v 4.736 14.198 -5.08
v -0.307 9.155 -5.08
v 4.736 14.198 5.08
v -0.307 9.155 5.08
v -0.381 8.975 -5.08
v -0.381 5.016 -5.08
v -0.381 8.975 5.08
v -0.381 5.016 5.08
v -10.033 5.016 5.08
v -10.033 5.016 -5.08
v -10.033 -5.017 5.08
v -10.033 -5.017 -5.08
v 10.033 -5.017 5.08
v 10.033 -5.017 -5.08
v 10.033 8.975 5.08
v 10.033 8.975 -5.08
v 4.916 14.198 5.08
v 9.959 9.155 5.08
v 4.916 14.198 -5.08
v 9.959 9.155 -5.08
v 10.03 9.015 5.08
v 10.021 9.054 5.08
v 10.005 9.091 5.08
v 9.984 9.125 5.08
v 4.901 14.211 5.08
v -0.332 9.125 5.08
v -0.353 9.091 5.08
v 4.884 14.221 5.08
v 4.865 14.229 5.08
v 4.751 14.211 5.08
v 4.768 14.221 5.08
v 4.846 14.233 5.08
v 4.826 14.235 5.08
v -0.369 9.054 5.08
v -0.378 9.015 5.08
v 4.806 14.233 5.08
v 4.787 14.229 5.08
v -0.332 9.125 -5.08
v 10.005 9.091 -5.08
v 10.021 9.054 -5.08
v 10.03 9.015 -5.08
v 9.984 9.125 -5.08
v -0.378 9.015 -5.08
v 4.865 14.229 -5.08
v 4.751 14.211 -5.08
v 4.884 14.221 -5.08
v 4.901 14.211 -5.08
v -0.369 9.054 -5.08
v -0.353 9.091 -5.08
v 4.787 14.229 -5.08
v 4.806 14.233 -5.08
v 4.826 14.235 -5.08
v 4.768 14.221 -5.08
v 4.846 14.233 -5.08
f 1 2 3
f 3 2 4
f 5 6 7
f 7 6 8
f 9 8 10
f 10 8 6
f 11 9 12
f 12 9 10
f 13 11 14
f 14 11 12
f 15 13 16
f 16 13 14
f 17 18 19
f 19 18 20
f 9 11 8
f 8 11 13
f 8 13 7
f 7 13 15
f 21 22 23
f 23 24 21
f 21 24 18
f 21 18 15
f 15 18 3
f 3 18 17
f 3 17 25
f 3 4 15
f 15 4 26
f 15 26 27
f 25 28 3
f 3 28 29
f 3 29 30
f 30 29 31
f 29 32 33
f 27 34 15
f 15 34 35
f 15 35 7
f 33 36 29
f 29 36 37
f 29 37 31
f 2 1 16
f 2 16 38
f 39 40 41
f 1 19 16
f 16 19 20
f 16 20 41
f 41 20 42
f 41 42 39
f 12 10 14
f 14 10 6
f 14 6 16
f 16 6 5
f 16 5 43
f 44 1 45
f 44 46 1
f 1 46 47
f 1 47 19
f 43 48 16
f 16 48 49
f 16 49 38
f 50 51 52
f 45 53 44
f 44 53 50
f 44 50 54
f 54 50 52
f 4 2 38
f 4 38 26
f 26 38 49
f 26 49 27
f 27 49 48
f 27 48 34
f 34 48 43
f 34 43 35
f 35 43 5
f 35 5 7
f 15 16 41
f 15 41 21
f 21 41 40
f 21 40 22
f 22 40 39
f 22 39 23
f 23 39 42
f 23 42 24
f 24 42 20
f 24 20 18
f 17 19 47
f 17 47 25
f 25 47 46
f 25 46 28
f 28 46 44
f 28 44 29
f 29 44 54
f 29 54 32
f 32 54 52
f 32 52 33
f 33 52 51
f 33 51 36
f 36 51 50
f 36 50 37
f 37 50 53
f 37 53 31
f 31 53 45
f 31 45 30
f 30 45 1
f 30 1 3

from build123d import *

# Parameters (mm, degrees)
SKETCH1_W           = 20.066
SKETCH1_H           = 10.033
BOSS_EXTRUDE1_DEPTH = 5.08
FILLET1_R           = 0.254
FILLET2_R           = 0.127


with BuildPart() as part:
    # Sketch1 → Boss-Extrude1 (new body, symmetric)
    with BuildSketch(Plane.XY):
        Polygon((-0.381, 5.0165), (10.033, 5.0165), (10.033, 9.0805), (4.826, 14.2875), (-0.381, 9.0805), align=None)
        Rectangle(SKETCH1_W, SKETCH1_H)
    extrude(amount=BOSS_EXTRUDE1_DEPTH, both=True)

    # Fillet1
    fillet1_edges = [part.edges().sort_by_distance(p)[0] for p in [
        (10.033, 9.0805, 0),
        (-0.381, 9.0805, 0),
    ]]
    fillet(fillet1_edges, radius=FILLET1_R)

    # Fillet2
    fillet2_edges = [part.edges().sort_by_distance(p)[0] for p in [
        (4.826, 14.2875, 0),
    ]]
    fillet(fillet2_edges, radius=FILLET2_R)


solid = part.part
